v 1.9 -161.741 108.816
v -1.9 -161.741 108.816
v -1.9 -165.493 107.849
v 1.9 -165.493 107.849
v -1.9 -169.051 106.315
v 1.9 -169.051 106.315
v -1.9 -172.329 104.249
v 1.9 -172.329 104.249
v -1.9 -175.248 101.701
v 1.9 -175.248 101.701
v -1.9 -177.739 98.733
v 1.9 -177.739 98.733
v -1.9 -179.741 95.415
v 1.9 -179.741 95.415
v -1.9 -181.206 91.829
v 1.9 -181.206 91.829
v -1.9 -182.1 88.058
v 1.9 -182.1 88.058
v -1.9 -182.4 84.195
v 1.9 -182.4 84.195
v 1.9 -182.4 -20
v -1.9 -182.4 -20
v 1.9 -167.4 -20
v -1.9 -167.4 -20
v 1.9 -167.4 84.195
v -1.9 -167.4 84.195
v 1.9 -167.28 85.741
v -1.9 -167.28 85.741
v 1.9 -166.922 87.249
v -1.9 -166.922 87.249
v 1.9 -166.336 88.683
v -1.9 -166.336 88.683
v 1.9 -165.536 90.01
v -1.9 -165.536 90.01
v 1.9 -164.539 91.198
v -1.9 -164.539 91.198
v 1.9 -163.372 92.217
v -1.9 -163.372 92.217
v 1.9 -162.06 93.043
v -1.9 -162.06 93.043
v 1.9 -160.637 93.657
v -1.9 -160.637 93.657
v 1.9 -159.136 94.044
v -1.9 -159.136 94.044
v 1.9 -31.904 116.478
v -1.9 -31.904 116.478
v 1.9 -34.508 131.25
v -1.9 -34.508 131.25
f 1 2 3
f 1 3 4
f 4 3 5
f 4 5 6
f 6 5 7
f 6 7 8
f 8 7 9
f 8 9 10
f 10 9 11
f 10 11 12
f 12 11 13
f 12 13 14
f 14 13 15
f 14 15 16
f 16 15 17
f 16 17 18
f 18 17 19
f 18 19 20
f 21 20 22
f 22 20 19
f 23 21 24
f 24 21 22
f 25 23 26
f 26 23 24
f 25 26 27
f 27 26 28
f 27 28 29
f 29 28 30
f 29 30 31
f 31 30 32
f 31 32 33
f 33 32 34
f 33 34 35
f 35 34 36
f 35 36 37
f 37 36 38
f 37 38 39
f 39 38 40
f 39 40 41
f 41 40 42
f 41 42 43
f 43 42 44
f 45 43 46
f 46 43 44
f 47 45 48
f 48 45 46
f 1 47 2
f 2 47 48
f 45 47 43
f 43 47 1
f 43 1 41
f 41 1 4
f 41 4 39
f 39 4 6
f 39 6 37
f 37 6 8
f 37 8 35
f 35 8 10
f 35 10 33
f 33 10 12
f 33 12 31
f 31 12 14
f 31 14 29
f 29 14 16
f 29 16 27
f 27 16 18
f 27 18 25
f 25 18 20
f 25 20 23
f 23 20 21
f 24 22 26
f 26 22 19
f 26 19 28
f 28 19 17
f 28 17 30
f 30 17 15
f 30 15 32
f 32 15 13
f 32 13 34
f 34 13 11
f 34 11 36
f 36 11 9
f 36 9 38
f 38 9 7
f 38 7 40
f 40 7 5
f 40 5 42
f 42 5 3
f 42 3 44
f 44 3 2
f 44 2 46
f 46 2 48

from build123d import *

# Parameters (mm, degrees)
BOSS_EXTRUDE1_DEPTH = 1.9


with BuildPart() as part:
    # Sketch1 → Boss-Extrude1 (new, symmetric)
    with BuildSketch(Plane(origin=(0, 0, 0), x_dir=(0, 0, -1), z_dir=(1, 0, 0))):
        with BuildLine():
            Line((-84.195498156, -182.4), (-80, -182.4))
            Line((-80, -182.4), (20, -182.4))
            Line((20, -182.4), (20, -167.4))
            Line((20, -167.4), (-80, -167.4))
            Line((-80, -167.4), (-84.195498156, -167.4))
            ThreePointArc((-84.195498156, -167.4), (-90.623374253, -165.060444431), (-94.043575686, -159.136481777))
            Line((-94.043575686, -159.136481777), (-116.478138504, -31.903753538))
            Line((-116.478138504, -31.903753538), (-131.250254799, -34.508476203))
            Line((-131.250254799, -34.508476203), (-108.815691981, -161.741204442))
            ThreePointArc((-108.815691981, -161.741204442), (-100.265188398, -176.551111078), (-84.195498156, -182.4))
        make_face()
    extrude(amount=BOSS_EXTRUDE1_DEPTH, both=True)


solid = part.part
